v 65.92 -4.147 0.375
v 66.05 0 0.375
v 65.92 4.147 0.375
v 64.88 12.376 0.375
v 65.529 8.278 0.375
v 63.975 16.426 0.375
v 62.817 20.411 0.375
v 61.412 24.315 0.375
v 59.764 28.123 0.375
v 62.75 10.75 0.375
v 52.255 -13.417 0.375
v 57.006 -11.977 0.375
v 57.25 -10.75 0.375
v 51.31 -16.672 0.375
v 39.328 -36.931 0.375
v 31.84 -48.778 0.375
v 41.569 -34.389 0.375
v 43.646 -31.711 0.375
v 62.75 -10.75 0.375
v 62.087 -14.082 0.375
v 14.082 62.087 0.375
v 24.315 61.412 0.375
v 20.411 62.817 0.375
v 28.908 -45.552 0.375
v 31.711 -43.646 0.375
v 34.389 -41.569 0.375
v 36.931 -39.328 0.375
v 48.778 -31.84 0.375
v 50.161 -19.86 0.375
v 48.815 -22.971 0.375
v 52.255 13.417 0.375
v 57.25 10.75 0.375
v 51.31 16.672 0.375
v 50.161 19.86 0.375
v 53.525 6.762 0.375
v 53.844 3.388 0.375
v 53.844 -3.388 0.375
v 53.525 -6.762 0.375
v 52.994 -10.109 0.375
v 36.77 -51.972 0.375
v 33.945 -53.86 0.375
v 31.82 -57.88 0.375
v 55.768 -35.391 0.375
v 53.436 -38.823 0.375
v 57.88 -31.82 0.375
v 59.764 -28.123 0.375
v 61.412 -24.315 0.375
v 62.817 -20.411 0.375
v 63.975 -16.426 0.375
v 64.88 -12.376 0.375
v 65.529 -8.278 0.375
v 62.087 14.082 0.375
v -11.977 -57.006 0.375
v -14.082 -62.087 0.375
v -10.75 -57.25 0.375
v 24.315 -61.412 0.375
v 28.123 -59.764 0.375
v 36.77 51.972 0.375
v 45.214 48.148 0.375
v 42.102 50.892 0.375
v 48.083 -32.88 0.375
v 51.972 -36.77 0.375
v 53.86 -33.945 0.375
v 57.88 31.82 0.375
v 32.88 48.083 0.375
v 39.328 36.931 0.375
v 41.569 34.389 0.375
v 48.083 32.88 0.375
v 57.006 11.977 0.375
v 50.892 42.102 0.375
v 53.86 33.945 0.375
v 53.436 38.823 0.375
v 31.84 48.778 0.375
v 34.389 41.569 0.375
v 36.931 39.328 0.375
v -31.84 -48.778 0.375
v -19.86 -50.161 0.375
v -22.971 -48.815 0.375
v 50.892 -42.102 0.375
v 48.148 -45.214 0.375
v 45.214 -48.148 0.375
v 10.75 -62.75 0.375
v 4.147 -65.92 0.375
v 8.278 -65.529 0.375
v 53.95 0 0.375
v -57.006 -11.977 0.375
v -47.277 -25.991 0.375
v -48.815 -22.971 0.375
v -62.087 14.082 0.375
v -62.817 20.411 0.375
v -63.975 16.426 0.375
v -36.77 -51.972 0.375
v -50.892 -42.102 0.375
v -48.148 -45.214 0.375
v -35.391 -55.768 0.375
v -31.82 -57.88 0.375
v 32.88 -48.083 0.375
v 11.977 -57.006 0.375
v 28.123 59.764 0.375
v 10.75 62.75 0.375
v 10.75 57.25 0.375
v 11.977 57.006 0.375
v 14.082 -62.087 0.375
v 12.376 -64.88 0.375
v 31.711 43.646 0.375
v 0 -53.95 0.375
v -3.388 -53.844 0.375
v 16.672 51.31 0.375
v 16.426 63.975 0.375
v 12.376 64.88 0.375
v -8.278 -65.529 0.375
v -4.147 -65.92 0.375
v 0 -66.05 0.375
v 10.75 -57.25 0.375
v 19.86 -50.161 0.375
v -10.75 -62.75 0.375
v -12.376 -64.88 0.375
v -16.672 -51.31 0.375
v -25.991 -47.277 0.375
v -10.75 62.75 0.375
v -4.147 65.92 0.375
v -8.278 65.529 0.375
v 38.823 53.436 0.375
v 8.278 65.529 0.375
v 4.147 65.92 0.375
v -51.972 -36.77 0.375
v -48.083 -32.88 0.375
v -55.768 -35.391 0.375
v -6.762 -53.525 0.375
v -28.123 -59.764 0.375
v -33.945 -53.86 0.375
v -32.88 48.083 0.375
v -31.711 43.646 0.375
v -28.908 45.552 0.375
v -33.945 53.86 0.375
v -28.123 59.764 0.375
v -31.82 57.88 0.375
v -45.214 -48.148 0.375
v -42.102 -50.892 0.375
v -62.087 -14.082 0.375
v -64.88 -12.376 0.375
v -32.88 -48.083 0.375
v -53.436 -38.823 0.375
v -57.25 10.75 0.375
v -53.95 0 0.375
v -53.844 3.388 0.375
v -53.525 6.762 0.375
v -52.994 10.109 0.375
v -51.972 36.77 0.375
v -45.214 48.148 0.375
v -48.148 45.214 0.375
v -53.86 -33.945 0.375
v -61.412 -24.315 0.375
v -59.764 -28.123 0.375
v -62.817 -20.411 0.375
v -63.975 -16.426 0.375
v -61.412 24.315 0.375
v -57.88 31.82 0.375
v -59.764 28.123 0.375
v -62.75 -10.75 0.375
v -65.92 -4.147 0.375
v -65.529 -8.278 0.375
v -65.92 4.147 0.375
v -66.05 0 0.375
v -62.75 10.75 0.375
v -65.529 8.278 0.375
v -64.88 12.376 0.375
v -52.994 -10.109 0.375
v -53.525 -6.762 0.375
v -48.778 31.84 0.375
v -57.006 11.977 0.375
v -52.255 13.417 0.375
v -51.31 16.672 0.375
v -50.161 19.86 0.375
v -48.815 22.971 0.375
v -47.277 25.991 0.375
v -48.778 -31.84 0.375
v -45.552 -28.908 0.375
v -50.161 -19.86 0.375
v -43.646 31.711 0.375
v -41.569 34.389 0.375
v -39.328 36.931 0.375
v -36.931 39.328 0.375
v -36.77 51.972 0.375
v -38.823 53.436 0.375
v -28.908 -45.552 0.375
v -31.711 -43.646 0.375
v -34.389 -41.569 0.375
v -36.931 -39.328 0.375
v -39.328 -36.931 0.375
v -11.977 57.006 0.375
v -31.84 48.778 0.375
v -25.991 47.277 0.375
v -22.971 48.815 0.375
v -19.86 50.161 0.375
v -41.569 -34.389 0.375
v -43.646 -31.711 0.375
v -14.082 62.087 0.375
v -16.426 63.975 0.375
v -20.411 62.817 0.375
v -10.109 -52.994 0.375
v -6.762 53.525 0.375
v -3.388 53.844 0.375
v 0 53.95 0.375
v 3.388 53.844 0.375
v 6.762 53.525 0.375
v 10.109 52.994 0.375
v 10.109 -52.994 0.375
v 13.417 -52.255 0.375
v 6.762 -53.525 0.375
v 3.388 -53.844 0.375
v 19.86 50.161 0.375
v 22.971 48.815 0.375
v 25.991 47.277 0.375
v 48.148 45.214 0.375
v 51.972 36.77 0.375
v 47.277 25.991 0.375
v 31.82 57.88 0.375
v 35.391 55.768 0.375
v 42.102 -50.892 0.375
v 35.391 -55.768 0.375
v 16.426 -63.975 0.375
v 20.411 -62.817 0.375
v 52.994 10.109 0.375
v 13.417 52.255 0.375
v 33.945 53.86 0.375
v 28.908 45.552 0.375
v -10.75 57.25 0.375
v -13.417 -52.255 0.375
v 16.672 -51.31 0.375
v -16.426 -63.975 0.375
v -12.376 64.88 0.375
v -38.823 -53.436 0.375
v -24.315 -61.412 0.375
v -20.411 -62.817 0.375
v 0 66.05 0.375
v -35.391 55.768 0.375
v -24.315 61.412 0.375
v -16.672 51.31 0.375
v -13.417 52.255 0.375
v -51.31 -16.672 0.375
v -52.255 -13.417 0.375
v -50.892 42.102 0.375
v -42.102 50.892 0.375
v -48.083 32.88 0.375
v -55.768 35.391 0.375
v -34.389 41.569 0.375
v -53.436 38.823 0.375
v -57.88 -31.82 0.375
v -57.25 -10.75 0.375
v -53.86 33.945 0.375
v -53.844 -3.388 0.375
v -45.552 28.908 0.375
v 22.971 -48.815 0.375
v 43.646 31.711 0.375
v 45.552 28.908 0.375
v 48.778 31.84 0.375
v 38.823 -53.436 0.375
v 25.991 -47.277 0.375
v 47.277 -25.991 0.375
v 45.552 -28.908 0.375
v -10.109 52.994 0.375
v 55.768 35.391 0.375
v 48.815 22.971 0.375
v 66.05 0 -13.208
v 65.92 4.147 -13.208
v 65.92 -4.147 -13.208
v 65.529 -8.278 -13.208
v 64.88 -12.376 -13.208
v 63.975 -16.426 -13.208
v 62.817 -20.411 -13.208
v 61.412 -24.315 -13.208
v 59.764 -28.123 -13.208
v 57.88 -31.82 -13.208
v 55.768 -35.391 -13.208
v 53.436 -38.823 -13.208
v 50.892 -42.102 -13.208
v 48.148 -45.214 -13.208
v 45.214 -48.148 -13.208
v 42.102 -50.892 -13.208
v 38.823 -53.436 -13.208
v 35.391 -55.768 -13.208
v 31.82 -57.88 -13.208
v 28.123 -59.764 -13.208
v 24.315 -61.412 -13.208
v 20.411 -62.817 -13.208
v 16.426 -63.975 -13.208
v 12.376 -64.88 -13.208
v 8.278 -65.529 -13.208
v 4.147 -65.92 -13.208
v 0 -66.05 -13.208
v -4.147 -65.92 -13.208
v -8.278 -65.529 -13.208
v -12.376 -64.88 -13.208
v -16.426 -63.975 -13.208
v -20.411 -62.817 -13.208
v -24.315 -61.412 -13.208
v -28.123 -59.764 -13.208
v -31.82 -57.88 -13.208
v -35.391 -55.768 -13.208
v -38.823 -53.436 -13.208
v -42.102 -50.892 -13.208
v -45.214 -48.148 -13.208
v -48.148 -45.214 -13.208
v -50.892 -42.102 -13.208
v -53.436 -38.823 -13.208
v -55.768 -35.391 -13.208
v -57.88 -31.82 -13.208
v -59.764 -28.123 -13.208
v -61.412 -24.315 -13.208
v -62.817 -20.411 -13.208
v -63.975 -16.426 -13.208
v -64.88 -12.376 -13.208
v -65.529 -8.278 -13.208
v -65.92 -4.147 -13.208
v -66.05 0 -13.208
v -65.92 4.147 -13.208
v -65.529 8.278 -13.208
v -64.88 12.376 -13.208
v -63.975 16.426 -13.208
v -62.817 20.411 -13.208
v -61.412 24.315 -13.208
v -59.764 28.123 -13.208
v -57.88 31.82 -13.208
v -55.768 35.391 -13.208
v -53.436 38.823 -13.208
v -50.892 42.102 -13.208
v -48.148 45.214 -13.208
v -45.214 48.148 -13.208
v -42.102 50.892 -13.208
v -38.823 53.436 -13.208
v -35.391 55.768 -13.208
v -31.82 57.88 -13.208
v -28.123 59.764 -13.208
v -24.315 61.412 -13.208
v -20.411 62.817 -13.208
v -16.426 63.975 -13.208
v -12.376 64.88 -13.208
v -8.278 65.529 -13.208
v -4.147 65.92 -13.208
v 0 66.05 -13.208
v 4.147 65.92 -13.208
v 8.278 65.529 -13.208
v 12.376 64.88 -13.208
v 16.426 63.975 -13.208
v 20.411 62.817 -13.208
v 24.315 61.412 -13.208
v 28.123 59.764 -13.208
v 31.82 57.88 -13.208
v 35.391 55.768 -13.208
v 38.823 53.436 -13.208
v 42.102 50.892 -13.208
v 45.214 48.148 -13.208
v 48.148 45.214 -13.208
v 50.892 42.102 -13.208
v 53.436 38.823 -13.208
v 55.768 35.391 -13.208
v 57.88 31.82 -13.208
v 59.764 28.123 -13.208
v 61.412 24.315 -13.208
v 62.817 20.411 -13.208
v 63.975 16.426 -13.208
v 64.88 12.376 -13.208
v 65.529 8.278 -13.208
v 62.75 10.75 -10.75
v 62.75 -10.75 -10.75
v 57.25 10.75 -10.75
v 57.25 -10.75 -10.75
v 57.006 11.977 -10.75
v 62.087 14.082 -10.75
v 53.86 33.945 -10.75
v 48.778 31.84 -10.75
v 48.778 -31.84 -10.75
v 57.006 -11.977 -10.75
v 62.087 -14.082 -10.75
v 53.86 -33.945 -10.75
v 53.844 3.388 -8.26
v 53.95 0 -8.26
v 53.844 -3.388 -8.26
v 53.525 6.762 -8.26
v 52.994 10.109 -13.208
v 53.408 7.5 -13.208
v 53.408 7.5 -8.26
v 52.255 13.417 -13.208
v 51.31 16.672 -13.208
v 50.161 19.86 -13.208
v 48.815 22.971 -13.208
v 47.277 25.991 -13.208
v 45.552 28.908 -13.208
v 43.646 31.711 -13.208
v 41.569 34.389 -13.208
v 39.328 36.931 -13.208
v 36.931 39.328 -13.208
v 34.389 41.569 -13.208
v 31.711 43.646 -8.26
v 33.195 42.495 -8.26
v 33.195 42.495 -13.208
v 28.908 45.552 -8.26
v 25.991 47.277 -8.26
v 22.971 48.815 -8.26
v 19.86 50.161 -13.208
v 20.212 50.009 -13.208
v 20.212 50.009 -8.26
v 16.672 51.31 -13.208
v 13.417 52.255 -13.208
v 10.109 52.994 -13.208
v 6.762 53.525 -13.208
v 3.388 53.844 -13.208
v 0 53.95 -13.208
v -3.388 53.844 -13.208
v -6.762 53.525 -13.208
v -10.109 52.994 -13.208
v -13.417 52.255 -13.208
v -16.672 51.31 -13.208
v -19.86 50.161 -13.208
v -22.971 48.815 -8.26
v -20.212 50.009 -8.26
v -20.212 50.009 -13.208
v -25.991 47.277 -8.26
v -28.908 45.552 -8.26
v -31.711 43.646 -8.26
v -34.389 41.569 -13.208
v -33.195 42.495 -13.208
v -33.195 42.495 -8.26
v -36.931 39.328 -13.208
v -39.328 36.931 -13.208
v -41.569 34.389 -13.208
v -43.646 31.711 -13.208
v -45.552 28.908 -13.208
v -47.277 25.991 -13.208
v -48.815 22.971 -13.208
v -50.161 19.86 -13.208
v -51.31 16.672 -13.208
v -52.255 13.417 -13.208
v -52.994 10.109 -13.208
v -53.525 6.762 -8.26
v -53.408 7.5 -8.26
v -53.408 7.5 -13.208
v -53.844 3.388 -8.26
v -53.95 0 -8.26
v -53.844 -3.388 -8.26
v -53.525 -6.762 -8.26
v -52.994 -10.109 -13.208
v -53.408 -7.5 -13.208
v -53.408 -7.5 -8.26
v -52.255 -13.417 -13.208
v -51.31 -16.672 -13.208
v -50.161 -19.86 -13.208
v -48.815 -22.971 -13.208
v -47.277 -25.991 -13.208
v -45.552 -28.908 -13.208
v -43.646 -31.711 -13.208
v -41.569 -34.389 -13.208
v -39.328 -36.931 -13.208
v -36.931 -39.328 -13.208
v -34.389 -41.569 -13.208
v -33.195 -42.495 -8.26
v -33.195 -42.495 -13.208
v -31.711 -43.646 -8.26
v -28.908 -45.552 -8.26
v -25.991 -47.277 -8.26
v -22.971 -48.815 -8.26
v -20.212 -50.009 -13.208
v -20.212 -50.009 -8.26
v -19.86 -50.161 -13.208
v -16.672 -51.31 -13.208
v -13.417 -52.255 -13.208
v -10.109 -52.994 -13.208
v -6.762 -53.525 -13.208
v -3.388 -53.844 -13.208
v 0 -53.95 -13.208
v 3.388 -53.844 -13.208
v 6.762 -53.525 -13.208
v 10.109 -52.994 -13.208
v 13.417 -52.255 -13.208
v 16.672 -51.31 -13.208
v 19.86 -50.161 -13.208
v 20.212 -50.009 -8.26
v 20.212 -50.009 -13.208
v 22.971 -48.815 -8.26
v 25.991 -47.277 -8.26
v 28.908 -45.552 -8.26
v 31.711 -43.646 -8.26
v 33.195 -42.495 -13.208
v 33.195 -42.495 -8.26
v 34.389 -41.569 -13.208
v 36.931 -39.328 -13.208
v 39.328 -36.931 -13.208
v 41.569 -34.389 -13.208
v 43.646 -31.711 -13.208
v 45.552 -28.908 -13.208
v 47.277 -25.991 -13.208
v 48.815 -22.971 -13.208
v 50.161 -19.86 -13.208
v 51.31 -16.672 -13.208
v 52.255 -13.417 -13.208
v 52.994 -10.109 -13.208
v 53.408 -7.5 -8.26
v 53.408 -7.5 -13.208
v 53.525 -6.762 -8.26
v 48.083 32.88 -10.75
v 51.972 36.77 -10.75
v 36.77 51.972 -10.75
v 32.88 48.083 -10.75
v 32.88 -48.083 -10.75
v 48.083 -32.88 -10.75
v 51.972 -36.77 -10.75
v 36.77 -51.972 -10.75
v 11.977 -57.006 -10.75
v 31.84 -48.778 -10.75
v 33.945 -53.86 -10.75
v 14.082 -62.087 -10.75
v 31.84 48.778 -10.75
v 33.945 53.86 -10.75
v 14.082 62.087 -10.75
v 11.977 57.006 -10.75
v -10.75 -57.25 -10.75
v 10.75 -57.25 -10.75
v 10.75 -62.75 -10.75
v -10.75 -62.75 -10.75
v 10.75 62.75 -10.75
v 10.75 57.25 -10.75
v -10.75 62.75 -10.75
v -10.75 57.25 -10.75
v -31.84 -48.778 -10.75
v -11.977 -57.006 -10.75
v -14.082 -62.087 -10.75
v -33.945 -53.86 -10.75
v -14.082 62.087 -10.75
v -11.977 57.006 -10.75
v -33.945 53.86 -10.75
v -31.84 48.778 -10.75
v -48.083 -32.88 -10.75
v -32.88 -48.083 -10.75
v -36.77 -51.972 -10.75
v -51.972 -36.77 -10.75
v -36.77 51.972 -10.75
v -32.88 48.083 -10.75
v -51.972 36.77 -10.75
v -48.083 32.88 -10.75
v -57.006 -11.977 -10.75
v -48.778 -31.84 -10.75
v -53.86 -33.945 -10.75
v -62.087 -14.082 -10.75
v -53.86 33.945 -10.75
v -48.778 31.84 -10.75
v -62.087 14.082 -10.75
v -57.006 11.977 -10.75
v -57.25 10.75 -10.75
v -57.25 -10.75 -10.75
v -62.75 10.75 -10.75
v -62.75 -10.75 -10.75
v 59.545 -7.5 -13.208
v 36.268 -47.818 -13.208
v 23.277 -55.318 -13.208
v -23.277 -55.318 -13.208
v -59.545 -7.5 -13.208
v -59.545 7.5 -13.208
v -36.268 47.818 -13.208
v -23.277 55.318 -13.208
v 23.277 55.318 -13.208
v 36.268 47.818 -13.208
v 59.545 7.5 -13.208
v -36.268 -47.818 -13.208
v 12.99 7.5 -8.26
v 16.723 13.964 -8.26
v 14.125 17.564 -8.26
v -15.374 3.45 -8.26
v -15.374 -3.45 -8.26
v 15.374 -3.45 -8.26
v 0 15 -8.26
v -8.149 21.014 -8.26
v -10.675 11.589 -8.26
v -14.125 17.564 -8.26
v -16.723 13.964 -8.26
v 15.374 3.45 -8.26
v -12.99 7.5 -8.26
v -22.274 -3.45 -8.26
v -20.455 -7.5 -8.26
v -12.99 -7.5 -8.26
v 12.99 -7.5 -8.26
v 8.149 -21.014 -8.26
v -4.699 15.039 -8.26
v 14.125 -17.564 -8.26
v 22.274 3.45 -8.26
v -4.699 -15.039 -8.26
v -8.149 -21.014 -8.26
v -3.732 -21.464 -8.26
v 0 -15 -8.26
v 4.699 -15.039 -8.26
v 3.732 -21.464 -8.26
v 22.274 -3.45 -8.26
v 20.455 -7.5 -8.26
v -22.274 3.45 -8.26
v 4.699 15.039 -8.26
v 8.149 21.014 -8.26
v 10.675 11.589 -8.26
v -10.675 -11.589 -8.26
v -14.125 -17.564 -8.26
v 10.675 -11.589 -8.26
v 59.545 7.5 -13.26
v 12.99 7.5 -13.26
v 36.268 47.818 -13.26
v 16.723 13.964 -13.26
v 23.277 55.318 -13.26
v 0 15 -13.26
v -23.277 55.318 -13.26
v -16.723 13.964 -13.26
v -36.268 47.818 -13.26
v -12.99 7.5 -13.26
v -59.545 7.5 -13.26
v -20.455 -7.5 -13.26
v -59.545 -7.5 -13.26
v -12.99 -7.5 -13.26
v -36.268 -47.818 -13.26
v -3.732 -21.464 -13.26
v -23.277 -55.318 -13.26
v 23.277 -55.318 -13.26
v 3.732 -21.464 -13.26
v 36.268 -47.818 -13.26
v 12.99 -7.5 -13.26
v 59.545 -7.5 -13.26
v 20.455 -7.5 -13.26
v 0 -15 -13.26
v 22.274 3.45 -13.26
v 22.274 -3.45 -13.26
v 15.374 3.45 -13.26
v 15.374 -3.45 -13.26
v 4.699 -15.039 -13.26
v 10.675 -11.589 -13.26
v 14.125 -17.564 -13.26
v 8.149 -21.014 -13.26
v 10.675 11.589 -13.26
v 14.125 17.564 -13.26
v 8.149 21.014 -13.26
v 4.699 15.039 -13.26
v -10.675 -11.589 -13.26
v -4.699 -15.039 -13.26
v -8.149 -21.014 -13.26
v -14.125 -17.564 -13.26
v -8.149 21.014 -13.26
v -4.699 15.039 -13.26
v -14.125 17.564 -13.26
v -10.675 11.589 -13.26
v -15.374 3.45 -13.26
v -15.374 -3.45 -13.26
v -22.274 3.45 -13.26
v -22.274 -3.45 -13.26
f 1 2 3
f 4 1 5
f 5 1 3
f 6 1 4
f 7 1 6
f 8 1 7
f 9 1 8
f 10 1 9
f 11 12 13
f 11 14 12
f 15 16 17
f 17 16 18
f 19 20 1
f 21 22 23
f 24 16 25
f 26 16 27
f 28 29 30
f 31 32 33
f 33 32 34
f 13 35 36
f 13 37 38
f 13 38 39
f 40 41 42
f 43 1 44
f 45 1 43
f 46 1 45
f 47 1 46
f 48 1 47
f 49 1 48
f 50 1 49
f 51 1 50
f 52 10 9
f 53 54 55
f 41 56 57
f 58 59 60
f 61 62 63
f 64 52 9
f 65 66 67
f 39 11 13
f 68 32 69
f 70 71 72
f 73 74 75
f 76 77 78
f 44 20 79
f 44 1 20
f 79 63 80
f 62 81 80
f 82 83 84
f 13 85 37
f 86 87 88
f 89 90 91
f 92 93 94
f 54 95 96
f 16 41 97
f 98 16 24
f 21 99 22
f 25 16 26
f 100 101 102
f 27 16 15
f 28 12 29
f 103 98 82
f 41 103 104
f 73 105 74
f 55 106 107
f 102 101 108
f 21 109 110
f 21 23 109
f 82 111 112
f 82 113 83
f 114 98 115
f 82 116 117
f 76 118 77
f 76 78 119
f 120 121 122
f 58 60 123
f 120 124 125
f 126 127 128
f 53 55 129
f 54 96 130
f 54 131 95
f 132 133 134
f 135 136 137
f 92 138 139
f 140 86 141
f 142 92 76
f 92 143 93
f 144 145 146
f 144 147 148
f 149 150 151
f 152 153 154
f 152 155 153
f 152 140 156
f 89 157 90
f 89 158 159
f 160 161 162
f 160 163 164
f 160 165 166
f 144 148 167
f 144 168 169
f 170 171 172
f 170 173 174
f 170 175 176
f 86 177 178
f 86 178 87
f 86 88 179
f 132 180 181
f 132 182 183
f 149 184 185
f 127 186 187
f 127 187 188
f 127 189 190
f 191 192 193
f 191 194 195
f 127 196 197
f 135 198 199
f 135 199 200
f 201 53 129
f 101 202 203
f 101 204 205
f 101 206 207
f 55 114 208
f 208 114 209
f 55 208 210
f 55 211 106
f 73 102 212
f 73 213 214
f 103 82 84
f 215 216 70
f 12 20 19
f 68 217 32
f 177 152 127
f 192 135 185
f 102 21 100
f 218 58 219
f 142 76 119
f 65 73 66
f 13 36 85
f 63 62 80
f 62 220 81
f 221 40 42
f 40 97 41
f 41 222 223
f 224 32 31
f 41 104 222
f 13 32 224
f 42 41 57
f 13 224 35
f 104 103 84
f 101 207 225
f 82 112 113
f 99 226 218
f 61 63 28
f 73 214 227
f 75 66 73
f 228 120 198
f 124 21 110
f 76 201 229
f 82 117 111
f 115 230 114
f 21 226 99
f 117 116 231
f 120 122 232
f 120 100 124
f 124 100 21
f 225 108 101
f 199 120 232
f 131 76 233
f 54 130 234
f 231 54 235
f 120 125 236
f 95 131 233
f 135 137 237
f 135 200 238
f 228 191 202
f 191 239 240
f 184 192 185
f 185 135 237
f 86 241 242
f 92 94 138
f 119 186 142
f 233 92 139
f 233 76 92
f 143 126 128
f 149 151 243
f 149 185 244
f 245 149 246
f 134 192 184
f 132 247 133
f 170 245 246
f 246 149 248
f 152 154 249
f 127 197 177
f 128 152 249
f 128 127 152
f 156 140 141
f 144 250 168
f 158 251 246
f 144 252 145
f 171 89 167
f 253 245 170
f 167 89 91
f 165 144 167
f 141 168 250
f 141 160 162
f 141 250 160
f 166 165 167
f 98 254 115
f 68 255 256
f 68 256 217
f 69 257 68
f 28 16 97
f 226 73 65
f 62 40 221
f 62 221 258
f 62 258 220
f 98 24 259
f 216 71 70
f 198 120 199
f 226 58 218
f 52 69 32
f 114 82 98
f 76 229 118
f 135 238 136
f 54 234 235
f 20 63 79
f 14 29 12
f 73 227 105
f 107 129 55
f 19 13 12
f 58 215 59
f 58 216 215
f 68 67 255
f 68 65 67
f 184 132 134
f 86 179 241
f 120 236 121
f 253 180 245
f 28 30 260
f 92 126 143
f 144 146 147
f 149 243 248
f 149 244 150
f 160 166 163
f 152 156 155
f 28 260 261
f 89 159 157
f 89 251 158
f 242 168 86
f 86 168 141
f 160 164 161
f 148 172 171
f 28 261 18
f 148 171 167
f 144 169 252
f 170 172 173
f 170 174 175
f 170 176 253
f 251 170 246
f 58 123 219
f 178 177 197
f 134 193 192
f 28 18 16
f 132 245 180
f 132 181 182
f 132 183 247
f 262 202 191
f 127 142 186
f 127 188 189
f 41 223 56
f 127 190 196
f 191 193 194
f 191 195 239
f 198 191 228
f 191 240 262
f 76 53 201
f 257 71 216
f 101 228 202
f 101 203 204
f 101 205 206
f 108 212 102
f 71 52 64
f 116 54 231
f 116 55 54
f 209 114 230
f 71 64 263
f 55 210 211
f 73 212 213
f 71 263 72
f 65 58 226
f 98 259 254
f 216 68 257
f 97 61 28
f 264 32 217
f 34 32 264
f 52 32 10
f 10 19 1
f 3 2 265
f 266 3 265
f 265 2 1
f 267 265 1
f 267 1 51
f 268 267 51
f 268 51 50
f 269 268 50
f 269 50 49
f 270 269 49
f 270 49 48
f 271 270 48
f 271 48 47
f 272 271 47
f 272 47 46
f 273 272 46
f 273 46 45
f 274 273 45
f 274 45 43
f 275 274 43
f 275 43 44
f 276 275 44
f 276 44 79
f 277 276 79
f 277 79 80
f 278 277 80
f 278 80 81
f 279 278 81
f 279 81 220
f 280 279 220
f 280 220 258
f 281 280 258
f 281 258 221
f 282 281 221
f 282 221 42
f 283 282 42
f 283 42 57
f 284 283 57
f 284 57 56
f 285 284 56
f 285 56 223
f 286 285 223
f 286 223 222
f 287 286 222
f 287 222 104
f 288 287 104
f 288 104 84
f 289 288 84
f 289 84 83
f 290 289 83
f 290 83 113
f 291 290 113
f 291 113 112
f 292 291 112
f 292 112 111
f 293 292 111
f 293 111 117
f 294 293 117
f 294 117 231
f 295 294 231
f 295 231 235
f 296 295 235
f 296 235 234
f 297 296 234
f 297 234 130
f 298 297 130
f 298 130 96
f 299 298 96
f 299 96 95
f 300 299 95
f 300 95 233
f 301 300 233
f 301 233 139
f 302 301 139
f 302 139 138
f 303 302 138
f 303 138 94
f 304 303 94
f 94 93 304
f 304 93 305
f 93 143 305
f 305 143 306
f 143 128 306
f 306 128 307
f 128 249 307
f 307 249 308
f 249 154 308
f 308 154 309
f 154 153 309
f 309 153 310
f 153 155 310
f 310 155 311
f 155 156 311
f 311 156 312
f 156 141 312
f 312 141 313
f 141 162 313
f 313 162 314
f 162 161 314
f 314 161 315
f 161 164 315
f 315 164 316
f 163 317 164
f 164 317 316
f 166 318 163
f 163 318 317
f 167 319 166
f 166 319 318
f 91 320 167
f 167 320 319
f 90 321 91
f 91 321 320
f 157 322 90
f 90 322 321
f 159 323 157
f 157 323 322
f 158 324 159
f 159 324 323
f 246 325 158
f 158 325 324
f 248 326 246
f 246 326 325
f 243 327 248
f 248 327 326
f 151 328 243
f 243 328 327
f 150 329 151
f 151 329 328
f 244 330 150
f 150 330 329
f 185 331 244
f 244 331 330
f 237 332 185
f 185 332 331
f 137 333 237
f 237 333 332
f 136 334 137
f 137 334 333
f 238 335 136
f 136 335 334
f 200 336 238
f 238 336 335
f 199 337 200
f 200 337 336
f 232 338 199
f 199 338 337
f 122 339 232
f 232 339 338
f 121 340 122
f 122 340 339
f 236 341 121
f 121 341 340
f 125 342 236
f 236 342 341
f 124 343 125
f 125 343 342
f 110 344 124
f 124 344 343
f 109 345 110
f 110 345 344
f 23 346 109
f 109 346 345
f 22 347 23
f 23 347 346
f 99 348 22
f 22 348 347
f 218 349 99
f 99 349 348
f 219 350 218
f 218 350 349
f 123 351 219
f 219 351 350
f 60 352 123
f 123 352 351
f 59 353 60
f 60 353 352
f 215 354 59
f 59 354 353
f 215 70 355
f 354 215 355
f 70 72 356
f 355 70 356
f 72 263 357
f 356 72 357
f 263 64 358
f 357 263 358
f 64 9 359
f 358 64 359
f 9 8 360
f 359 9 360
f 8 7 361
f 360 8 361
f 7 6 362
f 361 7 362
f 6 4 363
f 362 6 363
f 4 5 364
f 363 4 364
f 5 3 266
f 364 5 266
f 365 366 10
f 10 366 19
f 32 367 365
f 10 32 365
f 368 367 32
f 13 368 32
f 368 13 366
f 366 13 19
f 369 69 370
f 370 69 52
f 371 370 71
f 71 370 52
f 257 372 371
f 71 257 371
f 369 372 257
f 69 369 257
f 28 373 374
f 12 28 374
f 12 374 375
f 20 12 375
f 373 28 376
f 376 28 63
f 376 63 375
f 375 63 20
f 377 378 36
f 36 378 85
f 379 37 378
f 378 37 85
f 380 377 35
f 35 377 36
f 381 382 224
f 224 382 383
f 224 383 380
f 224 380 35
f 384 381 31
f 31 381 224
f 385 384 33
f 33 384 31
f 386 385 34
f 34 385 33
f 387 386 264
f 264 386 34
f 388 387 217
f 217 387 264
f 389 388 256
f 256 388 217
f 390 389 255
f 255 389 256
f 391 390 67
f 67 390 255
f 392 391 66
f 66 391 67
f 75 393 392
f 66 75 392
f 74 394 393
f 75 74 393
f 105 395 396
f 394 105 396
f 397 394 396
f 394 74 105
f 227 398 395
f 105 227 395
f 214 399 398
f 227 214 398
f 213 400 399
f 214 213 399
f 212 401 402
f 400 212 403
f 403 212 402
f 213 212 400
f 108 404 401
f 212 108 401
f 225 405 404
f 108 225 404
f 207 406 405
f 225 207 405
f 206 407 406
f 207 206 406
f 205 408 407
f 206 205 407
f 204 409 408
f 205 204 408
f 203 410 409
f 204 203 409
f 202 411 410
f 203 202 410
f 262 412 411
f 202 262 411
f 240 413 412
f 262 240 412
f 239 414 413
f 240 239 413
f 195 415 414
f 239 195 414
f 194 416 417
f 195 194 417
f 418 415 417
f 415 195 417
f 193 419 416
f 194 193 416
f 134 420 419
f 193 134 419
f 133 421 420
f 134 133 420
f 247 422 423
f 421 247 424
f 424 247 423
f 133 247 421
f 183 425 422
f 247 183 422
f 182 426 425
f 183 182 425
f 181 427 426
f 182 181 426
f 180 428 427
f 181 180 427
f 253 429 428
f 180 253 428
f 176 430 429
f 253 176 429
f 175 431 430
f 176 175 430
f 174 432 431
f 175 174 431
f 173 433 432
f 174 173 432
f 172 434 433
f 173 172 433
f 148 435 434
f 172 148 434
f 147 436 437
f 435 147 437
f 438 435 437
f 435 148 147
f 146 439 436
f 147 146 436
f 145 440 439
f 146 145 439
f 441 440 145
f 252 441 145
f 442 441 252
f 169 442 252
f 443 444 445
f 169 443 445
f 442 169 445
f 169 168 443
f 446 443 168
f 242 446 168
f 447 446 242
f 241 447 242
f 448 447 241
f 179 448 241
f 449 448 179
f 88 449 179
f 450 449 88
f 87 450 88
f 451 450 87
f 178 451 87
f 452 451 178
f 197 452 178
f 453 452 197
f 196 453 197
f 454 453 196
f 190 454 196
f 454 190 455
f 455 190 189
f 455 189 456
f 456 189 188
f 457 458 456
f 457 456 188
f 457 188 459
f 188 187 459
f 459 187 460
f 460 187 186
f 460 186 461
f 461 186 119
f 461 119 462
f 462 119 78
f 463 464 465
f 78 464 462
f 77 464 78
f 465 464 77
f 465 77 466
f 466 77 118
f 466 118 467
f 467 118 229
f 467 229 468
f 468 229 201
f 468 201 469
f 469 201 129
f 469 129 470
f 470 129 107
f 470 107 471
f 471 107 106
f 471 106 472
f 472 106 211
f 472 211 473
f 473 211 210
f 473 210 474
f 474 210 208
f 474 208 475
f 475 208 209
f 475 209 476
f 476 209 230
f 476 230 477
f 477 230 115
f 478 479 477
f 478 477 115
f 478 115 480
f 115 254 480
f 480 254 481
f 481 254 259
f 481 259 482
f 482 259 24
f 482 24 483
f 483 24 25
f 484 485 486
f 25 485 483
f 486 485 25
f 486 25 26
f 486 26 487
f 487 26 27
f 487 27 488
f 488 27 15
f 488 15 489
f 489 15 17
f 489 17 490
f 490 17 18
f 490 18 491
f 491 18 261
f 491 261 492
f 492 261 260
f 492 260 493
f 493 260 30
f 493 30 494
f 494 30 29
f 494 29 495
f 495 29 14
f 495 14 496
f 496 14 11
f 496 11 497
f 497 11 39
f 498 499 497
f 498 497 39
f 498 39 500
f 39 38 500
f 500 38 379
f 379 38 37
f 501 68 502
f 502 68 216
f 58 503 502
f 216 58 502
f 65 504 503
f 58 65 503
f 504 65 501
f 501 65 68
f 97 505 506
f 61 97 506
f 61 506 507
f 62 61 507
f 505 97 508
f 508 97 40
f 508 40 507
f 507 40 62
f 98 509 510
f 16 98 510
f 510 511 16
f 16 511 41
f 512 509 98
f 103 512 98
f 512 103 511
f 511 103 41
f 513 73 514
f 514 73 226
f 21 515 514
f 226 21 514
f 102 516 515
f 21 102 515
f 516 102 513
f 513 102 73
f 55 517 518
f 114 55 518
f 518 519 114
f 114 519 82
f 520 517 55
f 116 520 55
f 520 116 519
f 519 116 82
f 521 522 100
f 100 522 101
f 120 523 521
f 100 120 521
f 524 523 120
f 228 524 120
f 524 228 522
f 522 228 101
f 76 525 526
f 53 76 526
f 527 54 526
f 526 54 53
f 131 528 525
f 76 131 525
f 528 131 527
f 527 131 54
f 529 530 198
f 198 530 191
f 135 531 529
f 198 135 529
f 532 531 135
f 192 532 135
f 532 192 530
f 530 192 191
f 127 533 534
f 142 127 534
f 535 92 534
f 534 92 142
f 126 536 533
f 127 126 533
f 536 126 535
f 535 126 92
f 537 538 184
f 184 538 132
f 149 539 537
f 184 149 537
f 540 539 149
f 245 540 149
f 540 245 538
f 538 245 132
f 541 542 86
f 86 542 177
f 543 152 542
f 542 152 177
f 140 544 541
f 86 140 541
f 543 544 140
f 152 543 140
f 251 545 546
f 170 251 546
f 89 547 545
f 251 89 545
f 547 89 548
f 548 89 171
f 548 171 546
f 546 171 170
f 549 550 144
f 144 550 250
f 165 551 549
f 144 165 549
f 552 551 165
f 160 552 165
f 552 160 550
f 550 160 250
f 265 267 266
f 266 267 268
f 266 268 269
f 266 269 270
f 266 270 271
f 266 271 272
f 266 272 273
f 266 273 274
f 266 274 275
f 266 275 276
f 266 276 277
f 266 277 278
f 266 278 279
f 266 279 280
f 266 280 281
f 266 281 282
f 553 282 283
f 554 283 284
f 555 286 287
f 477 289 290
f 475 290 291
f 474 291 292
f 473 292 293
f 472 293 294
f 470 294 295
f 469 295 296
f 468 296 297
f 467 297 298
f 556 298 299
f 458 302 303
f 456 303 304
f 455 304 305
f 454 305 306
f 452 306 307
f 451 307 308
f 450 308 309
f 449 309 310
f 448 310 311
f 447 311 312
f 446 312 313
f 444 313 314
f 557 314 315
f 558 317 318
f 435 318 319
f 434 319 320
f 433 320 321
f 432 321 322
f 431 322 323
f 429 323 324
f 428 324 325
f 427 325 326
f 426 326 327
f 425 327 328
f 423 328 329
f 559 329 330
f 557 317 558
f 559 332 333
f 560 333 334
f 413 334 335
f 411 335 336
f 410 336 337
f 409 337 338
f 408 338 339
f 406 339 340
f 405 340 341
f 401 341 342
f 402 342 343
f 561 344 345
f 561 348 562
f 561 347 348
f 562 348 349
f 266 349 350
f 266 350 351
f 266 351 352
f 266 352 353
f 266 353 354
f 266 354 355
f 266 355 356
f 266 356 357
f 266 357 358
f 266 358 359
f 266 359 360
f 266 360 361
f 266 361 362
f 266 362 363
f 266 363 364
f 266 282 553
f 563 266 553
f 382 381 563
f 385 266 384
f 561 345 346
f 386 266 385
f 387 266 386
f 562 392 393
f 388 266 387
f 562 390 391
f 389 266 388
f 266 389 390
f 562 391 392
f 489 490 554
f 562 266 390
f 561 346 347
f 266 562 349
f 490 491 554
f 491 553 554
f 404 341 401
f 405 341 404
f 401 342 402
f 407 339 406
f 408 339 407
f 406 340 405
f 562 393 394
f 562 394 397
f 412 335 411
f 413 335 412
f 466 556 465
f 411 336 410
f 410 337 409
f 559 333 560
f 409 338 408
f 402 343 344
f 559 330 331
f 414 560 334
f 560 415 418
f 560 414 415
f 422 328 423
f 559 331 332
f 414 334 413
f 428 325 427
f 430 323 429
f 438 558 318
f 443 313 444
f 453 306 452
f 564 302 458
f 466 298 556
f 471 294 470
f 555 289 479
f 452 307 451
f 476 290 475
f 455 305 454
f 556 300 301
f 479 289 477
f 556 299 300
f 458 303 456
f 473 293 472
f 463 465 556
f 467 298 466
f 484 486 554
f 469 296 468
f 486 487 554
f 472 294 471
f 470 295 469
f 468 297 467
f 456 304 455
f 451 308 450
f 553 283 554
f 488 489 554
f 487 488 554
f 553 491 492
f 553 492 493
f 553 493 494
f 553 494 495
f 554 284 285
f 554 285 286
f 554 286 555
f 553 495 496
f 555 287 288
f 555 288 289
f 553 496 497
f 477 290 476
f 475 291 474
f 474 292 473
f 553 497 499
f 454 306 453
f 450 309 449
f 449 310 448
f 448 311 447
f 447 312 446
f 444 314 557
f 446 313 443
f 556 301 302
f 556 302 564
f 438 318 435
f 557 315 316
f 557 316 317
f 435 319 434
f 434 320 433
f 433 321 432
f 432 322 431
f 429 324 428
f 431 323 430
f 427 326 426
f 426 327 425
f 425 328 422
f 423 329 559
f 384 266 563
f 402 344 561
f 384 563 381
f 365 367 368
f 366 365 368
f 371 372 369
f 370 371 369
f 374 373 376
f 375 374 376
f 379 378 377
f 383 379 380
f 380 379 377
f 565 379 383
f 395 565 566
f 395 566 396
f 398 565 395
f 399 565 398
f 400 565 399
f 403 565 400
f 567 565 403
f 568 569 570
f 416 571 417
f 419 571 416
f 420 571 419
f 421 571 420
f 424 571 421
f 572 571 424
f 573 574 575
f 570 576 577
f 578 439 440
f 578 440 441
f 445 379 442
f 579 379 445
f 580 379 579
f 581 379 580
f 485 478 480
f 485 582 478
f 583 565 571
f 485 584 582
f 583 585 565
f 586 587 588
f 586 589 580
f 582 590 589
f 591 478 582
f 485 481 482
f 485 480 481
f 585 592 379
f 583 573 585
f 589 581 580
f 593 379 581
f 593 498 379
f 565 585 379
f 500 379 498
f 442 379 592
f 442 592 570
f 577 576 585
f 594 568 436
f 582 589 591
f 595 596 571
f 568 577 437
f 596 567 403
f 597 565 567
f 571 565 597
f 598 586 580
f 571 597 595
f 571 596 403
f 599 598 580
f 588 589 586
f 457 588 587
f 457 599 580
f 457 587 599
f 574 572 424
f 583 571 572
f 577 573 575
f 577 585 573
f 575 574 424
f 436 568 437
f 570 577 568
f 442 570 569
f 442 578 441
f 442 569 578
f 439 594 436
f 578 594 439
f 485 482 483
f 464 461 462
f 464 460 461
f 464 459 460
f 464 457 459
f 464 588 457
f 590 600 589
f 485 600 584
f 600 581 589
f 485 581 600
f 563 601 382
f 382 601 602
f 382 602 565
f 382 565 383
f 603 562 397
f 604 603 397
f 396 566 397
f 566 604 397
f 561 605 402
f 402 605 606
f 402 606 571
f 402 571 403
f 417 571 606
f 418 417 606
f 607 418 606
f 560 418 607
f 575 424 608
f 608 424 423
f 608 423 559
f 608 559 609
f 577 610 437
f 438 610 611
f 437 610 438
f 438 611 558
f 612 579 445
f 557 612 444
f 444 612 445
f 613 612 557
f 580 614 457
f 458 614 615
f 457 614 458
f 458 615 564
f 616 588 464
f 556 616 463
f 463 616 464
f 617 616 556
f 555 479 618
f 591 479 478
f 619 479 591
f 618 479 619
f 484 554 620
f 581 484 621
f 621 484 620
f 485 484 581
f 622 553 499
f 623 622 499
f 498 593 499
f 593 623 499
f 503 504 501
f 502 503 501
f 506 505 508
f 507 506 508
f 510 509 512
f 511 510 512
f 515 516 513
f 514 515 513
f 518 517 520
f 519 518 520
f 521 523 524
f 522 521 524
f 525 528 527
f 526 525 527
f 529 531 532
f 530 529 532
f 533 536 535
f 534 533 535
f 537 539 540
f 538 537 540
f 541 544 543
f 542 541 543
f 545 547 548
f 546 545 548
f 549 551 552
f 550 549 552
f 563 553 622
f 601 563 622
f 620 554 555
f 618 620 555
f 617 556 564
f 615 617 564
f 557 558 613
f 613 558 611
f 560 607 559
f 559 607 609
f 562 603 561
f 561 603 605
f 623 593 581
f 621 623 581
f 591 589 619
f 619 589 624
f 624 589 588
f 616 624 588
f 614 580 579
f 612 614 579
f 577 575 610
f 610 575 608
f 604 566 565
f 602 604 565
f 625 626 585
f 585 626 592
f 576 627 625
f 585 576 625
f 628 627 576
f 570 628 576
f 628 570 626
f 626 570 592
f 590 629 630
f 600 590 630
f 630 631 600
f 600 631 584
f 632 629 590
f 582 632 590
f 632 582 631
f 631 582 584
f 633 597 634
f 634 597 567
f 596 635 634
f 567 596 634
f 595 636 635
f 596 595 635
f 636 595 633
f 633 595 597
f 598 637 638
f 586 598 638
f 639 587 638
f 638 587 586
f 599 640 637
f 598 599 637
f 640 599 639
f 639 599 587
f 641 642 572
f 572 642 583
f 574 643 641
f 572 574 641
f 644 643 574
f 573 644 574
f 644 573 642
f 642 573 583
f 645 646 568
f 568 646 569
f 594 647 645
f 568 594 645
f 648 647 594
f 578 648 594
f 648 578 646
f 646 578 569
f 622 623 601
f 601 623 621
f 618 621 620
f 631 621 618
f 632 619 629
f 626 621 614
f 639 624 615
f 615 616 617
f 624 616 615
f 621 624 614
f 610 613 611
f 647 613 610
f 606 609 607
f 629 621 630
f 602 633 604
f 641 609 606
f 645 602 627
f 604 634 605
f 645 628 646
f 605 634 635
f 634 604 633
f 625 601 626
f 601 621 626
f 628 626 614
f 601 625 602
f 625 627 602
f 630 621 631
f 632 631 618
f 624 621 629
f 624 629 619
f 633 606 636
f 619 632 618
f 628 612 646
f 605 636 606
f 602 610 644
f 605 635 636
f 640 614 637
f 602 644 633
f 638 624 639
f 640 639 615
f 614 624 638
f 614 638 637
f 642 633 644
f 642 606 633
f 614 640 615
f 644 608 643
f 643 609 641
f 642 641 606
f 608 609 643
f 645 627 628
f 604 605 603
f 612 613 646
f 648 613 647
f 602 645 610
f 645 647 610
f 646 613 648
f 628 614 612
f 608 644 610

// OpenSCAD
// file: 3dprinter.scad
//BioDeploy SCAD file = 3dprinter.scad


//choose the max specs for your 3d printer
//here we use a replicator2x specs

x_print_max = 25*10;
y_print_max = 15.2*10;
z_print_max = 15.5*10;

//don't forget *10 to put in centimeters
// file: generator_rotor_adapter_hdd.scad
//===============================================//
//===============================================//
//BioDeploy SCAD file = generator_rotor_adapter_hdd.scad//
//                 Start File                    //
//===============================================//
//===============================================//
//-----------------------------------------------//

//===============================================//
//                   variables                   //
//===============================================//
include <generator_variables.scad>
//===============================================//
//               Calls for use                   //
//===============================================//
//use <generator_logo.scad>
//===============================================//
//                    Trees                      //
//===============================================//

module arm() {
cube([6,6,60], center=true);
}


module arm_rotation_adapter() {
translate([diam_adapter_max/1.7,0,30])arm();}


module arm_rotation(){
for(i = [0:(nbarm-1)]) {
rotate([0,0,(60)*i])arm_rotation_adapter();
}}

//
module armbase() {
cube([3,12,25], center=true);
}


module armbase_rotation_adapter() {
translate([diam_adapter_max/1.7,0,12.5])armbase();}


module armbase_rotation(){
for(i = [0:(nbarm-1)]) {
rotate([0,0,(60)*i])armbase_rotation_adapter();
}}
//

module centralringattach() {
difference()
{
color("Blue",1)translate([0,0,0])cylinder(h_adapter,diam_adapter_max/2,diam_adapter_max/2,center=true);
translate([0,0,0])cylinder(h_adapter+pad,diam_adapter_min/2,diam_adapter_min/2,center=true);}
}


module centralringattachext() {
difference()
{
color("Red",1)translate([0,0,+pad/2])cylinder(h_adapter+pad,45/2,45/2,center=true);
translate([0,0,+pad/2])cylinder(h_adapter+pad*2,diam_adapter_max/2,diam_adapter_max/2,center=true);}
}
module generator_rotor_adapter_hdd_a() {
union() {
centralringattach();
centralringattachext();
arm_rotation();
armbase_rotation();

}
}






module armscrewdif() {

cylinder(20,1.25,1.25,$fn=24,center=true);
}


module armscrewdif_rotation_adapter() {
translate([diam_adapter_max/1.7,0,50+pad])armscrewdif();}


module armscrewdif_rotation(){
for(i = [0:(nbarm-1)]) {
rotate([0,0,(60)*i])armscrewdif_rotation_adapter();
}}

module generator_rotor_adapter_hdd() {
difference() {
generator_rotor_adapter_hdd_a();
armscrewdif_rotation();}}


generator_rotor_adapter_hdd();

//-----------------------------------------------//
//===============================================//
//===============================================//
//BioDeploy SCAD file = generator_rotor_adapter_hdd.scad//
//                   End  File                   //
//===============================================//
//===============================================//
// file: generator_rotor_top.scad
//===============================================//
//===============================================//
// BioDeploy SCAD file = generator_rotor_top.scad//
//                 Start File                    //
//===============================================//
//===============================================//
//-----------------------------------------------//

//===============================================//
//                   variables                   //
//===============================================//
include <generator_variables.scad>
//===============================================//
//               Calls for use                   //
//===============================================//
use <generator_magnet.scad>
use <generator_magnet2.scad>
use <generator_rotor_adapter_hdd.scad>
//use <generator_logo.scad>
//===============================================//
//                    Trees                      //
//===============================================//


module magnet_rotation_adapter() {
translate([rotor_ext_max,0,0])magnet();}


module magnet_rotation(){
for(i = [0:(nbmagnetsonrotor-1)]) {
rotate([0,0,(360/nbmagnetsonrotor)*i])magnet_rotation_adapter();
}}




module magnetmaintaintop() {
difference()
{
color("Green",1)translate([0,0,+z_rotor_int/2-z_magnet/6])cylinder(z_rotor_int/2+z_magnet/6,rotor_ext_max+x_magnet*1.1,rotor_ext_max+x_magnet*1.1,$fn=smooth_rotor, center=true);
translate([0,0,+z_rotor_int/2-z_magnet/6+pad])cylinder(z_rotor_int+z_magnet/6,rotor_ext_max-x_magnet*1.1,rotor_ext_max-x_magnet*1.1,$fn=smooth_rotor, center=true);
}}


module arm() {
cube([6.9,6.9,60], center=true);
}


module arm_rotation_adapter() {
translate([diam_adapter_max/1.7,0,30])arm();}


module arm_rotation(){
for(i = [0:(nbarm-1)]) {
rotate([0,0,(60)*i])arm_rotation_adapter();
}}

//!
module armtop() {
translate([-20,0,z_rotor_int/2-z_magnet/6+z_rotor_int/4.605])cube([80,15,z_rotor_int/4], center=true);
}

module armtop_rotation_adapter() {
translate([(diam_adapter_max-diam_adapter_min)+diam_adapter_min*1.3,0,0])armtop();}

module armtop_rotation(){
for(i = [0:(nbarm-1)]) {
rotate([0,0,(60)*i])armtop_rotation_adapter();
}}

//armtop_rotation();


module armtopdif() {
cube([10,10,50], center=true);
}

module armtopdif_rotation_adapter() {
translate([(diam_adapter_max-diam_adapter_min)+diam_adapter_min*1.3,0,0])armtopdif();}

module armtopdif_rotation(){
for(i = [0:(nbarm-1)]) {
rotate([0,0,(60)*i])armtopdif_rotation_adapter();
}}



module fulldif() {
difference()
{
armtop_rotation();
arm_rotation();
}}



module fullunion() {
union() {
magnetmaintaintop();
fulldif();
}}

module generator_rotor_top() {
difference()
{
fullunion();
magnet_rotation();
}}

generator_rotor_top();




//-----------------------------------------------//
//===============================================//
//===============================================//
// BioDeploy SCAD file = generator_rotor_top.scad//
//                   End  File                   //
//===============================================//
//===============================================//
// file: generator_magnet2.scad
//===============================================//
//===============================================//
//  BioDeploy SCAD file = generator_magnet2.scad  //
//                 Start File                    //
//===============================================//
//===============================================//
//-----------------------------------------------//

//===============================================//
//                   variables                   //
//===============================================//
include <generator_variables.scad>
//===============================================//
//               Calls for use                   //
//===============================================//
//use <generator_logo.scad>
//===============================================//
//                    Trees                      //
//===============================================//
module magnet2()
{color("Rose",1)cylinder(z_magnet2,diam_magnet2/2,diam_magnet2/2,$fn=smooth_rotor, center=true);}
magnet2();

//%cube([x_h2o_cont_ext,y_h2o_cont_ext,z_h2o_cont_ext], center=true);
//-----------------------------------------------//
//===============================================//
//===============================================//
//  BioDeploy SCAD file = generator_magnet2.scad  //
//                   End  File                   //
//===============================================//
//===============================================//
// file: generator_magnet.scad
//===============================================//
//===============================================//
//  BioDeploy SCAD file = generator_magnet.scad  //
//                 Start File                    //
//===============================================//
//===============================================//
//-----------------------------------------------//

//===============================================//
//                   variables                   //
//===============================================//
include <generator_variables.scad>
//===============================================//
//               Calls for use                   //
//===============================================//
//use <generator_logo.scad>
//===============================================//
//                    Trees                      //
//===============================================//
module magnet()
{cube([x_magnet,y_magnet,z_magnet], center = true);}
magnet();

//%cube([x_h2o_cont_ext,y_h2o_cont_ext,z_h2o_cont_ext], center=true);
//-----------------------------------------------//
//===============================================//
//===============================================//
//  BioDeploy SCAD file = generator_magnet.scad  //
//                   End  File                   //
//===============================================//
//===============================================//
// file: generator_variables.scad
//===============================================//
//===============================================//
// BioDeploy SCAD file = generator_variables.scad//
//                 Start File                    //
//===============================================//
//===============================================//
//-----------------------------------------------//
include <3dprinter.scad>
//===============================================//
//                   variables                   //
//===============================================//
//===============================================//
pad = 0.1; //padding
//choose the spec for your generator
//===============================================//
//                    magnets1                   //
//===============================================//
//Volume :
x_magnet = 5.5;
y_magnet = 21.5;
z_magnet = 21.5;
//Number of magnets on the rotor :
nbmagnetsonrotor = 16;
rotor_ext_max = 60;
//===============================================//
//                    magnets2                   //
//===============================================//
//Volume :
diam_magnet2 = 35;
z_magnet2 = 5;
//Number of magnets on the rotor :
nbmagnetsonrotor2 = 6;
//===============================================//
//                      rotor                    //
//===============================================//
smooth_rotor = 100;
smooth_bobine = 100;
z_rotor_int = 20;
//===============================================//
//                  adapter_rotor                //
//===============================================//
diam_adapter_max = 32 ;
diam_adapter_min = 25.15 ;
h_adapter = 7;
h_adapter_box = 12;
nbarm = 6;
//===============================================//
//                    Bobine1                    //
//===============================================//
r_bobine_ext_max = y_magnet/2;
r_bobine_ext_min = 4.5;
r_bobine_int = 3.5;

x_bobine = 30;
p_bobine_ext = 1;

r_bobine2_ext_min = 3.4;
r_bobine2_int = 2.5;

wire_in = 1;
wire_out = 1;


//===============================================//
//                    Protector                  //
//===============================================//

r_bobine_protector_ext_max = y_magnet/2 + 1.5;
gap_bobine_protector = (r_bobine_protector_ext_max - r_bobine_ext_max)/2;


x_bobine_protector=x_bobine+1.5;

smooth_protector = 100;

//===============================================//
//                    Socle1                     //
//===============================================//

r_socle_int = 0;
r_socle_ext = 0;
position_bobine_in = 0;
position_bobine_out = 0;
connector_socle_female =0;
connector_socle_male =0;
space_marge=3;

//-----------------------------------------------//
//===============================================//
//===============================================//
// BioDeploy SCAD file = generator_variables.scad//
//                   End  File                   //
//===============================================//
//===============================================//
// main file
//===============================================//
//===============================================//
//BioDeploy SCAD file = generator_rotor_bottom.scad//
//                 Start File                    //
//===============================================//
//===============================================//
//-----------------------------------------------//

//===============================================//
//                   variables                   //
//===============================================//
include <generator_variables.scad>
//===============================================//
//               Calls for use                   //
//===============================================//
use <generator_magnet.scad>
use <generator_magnet2.scad>
use <generator_rotor_top.scad>
use <generator_rotor_adapter_hdd.scad>
//use <generator_logo.scad>
//===============================================//
//                    Trees                      //
//===============================================//

module generator_rotor_bottom(){
rotate([0,180,0])generator_rotor_top();}

generator_rotor_bottom();

//-----------------------------------------------//
//===============================================//
//===============================================//
//BioDeploy SCAD file = generator_rotor_bottom.scad//
//                   End  File                   //
//===============================================//
//===============================================//
